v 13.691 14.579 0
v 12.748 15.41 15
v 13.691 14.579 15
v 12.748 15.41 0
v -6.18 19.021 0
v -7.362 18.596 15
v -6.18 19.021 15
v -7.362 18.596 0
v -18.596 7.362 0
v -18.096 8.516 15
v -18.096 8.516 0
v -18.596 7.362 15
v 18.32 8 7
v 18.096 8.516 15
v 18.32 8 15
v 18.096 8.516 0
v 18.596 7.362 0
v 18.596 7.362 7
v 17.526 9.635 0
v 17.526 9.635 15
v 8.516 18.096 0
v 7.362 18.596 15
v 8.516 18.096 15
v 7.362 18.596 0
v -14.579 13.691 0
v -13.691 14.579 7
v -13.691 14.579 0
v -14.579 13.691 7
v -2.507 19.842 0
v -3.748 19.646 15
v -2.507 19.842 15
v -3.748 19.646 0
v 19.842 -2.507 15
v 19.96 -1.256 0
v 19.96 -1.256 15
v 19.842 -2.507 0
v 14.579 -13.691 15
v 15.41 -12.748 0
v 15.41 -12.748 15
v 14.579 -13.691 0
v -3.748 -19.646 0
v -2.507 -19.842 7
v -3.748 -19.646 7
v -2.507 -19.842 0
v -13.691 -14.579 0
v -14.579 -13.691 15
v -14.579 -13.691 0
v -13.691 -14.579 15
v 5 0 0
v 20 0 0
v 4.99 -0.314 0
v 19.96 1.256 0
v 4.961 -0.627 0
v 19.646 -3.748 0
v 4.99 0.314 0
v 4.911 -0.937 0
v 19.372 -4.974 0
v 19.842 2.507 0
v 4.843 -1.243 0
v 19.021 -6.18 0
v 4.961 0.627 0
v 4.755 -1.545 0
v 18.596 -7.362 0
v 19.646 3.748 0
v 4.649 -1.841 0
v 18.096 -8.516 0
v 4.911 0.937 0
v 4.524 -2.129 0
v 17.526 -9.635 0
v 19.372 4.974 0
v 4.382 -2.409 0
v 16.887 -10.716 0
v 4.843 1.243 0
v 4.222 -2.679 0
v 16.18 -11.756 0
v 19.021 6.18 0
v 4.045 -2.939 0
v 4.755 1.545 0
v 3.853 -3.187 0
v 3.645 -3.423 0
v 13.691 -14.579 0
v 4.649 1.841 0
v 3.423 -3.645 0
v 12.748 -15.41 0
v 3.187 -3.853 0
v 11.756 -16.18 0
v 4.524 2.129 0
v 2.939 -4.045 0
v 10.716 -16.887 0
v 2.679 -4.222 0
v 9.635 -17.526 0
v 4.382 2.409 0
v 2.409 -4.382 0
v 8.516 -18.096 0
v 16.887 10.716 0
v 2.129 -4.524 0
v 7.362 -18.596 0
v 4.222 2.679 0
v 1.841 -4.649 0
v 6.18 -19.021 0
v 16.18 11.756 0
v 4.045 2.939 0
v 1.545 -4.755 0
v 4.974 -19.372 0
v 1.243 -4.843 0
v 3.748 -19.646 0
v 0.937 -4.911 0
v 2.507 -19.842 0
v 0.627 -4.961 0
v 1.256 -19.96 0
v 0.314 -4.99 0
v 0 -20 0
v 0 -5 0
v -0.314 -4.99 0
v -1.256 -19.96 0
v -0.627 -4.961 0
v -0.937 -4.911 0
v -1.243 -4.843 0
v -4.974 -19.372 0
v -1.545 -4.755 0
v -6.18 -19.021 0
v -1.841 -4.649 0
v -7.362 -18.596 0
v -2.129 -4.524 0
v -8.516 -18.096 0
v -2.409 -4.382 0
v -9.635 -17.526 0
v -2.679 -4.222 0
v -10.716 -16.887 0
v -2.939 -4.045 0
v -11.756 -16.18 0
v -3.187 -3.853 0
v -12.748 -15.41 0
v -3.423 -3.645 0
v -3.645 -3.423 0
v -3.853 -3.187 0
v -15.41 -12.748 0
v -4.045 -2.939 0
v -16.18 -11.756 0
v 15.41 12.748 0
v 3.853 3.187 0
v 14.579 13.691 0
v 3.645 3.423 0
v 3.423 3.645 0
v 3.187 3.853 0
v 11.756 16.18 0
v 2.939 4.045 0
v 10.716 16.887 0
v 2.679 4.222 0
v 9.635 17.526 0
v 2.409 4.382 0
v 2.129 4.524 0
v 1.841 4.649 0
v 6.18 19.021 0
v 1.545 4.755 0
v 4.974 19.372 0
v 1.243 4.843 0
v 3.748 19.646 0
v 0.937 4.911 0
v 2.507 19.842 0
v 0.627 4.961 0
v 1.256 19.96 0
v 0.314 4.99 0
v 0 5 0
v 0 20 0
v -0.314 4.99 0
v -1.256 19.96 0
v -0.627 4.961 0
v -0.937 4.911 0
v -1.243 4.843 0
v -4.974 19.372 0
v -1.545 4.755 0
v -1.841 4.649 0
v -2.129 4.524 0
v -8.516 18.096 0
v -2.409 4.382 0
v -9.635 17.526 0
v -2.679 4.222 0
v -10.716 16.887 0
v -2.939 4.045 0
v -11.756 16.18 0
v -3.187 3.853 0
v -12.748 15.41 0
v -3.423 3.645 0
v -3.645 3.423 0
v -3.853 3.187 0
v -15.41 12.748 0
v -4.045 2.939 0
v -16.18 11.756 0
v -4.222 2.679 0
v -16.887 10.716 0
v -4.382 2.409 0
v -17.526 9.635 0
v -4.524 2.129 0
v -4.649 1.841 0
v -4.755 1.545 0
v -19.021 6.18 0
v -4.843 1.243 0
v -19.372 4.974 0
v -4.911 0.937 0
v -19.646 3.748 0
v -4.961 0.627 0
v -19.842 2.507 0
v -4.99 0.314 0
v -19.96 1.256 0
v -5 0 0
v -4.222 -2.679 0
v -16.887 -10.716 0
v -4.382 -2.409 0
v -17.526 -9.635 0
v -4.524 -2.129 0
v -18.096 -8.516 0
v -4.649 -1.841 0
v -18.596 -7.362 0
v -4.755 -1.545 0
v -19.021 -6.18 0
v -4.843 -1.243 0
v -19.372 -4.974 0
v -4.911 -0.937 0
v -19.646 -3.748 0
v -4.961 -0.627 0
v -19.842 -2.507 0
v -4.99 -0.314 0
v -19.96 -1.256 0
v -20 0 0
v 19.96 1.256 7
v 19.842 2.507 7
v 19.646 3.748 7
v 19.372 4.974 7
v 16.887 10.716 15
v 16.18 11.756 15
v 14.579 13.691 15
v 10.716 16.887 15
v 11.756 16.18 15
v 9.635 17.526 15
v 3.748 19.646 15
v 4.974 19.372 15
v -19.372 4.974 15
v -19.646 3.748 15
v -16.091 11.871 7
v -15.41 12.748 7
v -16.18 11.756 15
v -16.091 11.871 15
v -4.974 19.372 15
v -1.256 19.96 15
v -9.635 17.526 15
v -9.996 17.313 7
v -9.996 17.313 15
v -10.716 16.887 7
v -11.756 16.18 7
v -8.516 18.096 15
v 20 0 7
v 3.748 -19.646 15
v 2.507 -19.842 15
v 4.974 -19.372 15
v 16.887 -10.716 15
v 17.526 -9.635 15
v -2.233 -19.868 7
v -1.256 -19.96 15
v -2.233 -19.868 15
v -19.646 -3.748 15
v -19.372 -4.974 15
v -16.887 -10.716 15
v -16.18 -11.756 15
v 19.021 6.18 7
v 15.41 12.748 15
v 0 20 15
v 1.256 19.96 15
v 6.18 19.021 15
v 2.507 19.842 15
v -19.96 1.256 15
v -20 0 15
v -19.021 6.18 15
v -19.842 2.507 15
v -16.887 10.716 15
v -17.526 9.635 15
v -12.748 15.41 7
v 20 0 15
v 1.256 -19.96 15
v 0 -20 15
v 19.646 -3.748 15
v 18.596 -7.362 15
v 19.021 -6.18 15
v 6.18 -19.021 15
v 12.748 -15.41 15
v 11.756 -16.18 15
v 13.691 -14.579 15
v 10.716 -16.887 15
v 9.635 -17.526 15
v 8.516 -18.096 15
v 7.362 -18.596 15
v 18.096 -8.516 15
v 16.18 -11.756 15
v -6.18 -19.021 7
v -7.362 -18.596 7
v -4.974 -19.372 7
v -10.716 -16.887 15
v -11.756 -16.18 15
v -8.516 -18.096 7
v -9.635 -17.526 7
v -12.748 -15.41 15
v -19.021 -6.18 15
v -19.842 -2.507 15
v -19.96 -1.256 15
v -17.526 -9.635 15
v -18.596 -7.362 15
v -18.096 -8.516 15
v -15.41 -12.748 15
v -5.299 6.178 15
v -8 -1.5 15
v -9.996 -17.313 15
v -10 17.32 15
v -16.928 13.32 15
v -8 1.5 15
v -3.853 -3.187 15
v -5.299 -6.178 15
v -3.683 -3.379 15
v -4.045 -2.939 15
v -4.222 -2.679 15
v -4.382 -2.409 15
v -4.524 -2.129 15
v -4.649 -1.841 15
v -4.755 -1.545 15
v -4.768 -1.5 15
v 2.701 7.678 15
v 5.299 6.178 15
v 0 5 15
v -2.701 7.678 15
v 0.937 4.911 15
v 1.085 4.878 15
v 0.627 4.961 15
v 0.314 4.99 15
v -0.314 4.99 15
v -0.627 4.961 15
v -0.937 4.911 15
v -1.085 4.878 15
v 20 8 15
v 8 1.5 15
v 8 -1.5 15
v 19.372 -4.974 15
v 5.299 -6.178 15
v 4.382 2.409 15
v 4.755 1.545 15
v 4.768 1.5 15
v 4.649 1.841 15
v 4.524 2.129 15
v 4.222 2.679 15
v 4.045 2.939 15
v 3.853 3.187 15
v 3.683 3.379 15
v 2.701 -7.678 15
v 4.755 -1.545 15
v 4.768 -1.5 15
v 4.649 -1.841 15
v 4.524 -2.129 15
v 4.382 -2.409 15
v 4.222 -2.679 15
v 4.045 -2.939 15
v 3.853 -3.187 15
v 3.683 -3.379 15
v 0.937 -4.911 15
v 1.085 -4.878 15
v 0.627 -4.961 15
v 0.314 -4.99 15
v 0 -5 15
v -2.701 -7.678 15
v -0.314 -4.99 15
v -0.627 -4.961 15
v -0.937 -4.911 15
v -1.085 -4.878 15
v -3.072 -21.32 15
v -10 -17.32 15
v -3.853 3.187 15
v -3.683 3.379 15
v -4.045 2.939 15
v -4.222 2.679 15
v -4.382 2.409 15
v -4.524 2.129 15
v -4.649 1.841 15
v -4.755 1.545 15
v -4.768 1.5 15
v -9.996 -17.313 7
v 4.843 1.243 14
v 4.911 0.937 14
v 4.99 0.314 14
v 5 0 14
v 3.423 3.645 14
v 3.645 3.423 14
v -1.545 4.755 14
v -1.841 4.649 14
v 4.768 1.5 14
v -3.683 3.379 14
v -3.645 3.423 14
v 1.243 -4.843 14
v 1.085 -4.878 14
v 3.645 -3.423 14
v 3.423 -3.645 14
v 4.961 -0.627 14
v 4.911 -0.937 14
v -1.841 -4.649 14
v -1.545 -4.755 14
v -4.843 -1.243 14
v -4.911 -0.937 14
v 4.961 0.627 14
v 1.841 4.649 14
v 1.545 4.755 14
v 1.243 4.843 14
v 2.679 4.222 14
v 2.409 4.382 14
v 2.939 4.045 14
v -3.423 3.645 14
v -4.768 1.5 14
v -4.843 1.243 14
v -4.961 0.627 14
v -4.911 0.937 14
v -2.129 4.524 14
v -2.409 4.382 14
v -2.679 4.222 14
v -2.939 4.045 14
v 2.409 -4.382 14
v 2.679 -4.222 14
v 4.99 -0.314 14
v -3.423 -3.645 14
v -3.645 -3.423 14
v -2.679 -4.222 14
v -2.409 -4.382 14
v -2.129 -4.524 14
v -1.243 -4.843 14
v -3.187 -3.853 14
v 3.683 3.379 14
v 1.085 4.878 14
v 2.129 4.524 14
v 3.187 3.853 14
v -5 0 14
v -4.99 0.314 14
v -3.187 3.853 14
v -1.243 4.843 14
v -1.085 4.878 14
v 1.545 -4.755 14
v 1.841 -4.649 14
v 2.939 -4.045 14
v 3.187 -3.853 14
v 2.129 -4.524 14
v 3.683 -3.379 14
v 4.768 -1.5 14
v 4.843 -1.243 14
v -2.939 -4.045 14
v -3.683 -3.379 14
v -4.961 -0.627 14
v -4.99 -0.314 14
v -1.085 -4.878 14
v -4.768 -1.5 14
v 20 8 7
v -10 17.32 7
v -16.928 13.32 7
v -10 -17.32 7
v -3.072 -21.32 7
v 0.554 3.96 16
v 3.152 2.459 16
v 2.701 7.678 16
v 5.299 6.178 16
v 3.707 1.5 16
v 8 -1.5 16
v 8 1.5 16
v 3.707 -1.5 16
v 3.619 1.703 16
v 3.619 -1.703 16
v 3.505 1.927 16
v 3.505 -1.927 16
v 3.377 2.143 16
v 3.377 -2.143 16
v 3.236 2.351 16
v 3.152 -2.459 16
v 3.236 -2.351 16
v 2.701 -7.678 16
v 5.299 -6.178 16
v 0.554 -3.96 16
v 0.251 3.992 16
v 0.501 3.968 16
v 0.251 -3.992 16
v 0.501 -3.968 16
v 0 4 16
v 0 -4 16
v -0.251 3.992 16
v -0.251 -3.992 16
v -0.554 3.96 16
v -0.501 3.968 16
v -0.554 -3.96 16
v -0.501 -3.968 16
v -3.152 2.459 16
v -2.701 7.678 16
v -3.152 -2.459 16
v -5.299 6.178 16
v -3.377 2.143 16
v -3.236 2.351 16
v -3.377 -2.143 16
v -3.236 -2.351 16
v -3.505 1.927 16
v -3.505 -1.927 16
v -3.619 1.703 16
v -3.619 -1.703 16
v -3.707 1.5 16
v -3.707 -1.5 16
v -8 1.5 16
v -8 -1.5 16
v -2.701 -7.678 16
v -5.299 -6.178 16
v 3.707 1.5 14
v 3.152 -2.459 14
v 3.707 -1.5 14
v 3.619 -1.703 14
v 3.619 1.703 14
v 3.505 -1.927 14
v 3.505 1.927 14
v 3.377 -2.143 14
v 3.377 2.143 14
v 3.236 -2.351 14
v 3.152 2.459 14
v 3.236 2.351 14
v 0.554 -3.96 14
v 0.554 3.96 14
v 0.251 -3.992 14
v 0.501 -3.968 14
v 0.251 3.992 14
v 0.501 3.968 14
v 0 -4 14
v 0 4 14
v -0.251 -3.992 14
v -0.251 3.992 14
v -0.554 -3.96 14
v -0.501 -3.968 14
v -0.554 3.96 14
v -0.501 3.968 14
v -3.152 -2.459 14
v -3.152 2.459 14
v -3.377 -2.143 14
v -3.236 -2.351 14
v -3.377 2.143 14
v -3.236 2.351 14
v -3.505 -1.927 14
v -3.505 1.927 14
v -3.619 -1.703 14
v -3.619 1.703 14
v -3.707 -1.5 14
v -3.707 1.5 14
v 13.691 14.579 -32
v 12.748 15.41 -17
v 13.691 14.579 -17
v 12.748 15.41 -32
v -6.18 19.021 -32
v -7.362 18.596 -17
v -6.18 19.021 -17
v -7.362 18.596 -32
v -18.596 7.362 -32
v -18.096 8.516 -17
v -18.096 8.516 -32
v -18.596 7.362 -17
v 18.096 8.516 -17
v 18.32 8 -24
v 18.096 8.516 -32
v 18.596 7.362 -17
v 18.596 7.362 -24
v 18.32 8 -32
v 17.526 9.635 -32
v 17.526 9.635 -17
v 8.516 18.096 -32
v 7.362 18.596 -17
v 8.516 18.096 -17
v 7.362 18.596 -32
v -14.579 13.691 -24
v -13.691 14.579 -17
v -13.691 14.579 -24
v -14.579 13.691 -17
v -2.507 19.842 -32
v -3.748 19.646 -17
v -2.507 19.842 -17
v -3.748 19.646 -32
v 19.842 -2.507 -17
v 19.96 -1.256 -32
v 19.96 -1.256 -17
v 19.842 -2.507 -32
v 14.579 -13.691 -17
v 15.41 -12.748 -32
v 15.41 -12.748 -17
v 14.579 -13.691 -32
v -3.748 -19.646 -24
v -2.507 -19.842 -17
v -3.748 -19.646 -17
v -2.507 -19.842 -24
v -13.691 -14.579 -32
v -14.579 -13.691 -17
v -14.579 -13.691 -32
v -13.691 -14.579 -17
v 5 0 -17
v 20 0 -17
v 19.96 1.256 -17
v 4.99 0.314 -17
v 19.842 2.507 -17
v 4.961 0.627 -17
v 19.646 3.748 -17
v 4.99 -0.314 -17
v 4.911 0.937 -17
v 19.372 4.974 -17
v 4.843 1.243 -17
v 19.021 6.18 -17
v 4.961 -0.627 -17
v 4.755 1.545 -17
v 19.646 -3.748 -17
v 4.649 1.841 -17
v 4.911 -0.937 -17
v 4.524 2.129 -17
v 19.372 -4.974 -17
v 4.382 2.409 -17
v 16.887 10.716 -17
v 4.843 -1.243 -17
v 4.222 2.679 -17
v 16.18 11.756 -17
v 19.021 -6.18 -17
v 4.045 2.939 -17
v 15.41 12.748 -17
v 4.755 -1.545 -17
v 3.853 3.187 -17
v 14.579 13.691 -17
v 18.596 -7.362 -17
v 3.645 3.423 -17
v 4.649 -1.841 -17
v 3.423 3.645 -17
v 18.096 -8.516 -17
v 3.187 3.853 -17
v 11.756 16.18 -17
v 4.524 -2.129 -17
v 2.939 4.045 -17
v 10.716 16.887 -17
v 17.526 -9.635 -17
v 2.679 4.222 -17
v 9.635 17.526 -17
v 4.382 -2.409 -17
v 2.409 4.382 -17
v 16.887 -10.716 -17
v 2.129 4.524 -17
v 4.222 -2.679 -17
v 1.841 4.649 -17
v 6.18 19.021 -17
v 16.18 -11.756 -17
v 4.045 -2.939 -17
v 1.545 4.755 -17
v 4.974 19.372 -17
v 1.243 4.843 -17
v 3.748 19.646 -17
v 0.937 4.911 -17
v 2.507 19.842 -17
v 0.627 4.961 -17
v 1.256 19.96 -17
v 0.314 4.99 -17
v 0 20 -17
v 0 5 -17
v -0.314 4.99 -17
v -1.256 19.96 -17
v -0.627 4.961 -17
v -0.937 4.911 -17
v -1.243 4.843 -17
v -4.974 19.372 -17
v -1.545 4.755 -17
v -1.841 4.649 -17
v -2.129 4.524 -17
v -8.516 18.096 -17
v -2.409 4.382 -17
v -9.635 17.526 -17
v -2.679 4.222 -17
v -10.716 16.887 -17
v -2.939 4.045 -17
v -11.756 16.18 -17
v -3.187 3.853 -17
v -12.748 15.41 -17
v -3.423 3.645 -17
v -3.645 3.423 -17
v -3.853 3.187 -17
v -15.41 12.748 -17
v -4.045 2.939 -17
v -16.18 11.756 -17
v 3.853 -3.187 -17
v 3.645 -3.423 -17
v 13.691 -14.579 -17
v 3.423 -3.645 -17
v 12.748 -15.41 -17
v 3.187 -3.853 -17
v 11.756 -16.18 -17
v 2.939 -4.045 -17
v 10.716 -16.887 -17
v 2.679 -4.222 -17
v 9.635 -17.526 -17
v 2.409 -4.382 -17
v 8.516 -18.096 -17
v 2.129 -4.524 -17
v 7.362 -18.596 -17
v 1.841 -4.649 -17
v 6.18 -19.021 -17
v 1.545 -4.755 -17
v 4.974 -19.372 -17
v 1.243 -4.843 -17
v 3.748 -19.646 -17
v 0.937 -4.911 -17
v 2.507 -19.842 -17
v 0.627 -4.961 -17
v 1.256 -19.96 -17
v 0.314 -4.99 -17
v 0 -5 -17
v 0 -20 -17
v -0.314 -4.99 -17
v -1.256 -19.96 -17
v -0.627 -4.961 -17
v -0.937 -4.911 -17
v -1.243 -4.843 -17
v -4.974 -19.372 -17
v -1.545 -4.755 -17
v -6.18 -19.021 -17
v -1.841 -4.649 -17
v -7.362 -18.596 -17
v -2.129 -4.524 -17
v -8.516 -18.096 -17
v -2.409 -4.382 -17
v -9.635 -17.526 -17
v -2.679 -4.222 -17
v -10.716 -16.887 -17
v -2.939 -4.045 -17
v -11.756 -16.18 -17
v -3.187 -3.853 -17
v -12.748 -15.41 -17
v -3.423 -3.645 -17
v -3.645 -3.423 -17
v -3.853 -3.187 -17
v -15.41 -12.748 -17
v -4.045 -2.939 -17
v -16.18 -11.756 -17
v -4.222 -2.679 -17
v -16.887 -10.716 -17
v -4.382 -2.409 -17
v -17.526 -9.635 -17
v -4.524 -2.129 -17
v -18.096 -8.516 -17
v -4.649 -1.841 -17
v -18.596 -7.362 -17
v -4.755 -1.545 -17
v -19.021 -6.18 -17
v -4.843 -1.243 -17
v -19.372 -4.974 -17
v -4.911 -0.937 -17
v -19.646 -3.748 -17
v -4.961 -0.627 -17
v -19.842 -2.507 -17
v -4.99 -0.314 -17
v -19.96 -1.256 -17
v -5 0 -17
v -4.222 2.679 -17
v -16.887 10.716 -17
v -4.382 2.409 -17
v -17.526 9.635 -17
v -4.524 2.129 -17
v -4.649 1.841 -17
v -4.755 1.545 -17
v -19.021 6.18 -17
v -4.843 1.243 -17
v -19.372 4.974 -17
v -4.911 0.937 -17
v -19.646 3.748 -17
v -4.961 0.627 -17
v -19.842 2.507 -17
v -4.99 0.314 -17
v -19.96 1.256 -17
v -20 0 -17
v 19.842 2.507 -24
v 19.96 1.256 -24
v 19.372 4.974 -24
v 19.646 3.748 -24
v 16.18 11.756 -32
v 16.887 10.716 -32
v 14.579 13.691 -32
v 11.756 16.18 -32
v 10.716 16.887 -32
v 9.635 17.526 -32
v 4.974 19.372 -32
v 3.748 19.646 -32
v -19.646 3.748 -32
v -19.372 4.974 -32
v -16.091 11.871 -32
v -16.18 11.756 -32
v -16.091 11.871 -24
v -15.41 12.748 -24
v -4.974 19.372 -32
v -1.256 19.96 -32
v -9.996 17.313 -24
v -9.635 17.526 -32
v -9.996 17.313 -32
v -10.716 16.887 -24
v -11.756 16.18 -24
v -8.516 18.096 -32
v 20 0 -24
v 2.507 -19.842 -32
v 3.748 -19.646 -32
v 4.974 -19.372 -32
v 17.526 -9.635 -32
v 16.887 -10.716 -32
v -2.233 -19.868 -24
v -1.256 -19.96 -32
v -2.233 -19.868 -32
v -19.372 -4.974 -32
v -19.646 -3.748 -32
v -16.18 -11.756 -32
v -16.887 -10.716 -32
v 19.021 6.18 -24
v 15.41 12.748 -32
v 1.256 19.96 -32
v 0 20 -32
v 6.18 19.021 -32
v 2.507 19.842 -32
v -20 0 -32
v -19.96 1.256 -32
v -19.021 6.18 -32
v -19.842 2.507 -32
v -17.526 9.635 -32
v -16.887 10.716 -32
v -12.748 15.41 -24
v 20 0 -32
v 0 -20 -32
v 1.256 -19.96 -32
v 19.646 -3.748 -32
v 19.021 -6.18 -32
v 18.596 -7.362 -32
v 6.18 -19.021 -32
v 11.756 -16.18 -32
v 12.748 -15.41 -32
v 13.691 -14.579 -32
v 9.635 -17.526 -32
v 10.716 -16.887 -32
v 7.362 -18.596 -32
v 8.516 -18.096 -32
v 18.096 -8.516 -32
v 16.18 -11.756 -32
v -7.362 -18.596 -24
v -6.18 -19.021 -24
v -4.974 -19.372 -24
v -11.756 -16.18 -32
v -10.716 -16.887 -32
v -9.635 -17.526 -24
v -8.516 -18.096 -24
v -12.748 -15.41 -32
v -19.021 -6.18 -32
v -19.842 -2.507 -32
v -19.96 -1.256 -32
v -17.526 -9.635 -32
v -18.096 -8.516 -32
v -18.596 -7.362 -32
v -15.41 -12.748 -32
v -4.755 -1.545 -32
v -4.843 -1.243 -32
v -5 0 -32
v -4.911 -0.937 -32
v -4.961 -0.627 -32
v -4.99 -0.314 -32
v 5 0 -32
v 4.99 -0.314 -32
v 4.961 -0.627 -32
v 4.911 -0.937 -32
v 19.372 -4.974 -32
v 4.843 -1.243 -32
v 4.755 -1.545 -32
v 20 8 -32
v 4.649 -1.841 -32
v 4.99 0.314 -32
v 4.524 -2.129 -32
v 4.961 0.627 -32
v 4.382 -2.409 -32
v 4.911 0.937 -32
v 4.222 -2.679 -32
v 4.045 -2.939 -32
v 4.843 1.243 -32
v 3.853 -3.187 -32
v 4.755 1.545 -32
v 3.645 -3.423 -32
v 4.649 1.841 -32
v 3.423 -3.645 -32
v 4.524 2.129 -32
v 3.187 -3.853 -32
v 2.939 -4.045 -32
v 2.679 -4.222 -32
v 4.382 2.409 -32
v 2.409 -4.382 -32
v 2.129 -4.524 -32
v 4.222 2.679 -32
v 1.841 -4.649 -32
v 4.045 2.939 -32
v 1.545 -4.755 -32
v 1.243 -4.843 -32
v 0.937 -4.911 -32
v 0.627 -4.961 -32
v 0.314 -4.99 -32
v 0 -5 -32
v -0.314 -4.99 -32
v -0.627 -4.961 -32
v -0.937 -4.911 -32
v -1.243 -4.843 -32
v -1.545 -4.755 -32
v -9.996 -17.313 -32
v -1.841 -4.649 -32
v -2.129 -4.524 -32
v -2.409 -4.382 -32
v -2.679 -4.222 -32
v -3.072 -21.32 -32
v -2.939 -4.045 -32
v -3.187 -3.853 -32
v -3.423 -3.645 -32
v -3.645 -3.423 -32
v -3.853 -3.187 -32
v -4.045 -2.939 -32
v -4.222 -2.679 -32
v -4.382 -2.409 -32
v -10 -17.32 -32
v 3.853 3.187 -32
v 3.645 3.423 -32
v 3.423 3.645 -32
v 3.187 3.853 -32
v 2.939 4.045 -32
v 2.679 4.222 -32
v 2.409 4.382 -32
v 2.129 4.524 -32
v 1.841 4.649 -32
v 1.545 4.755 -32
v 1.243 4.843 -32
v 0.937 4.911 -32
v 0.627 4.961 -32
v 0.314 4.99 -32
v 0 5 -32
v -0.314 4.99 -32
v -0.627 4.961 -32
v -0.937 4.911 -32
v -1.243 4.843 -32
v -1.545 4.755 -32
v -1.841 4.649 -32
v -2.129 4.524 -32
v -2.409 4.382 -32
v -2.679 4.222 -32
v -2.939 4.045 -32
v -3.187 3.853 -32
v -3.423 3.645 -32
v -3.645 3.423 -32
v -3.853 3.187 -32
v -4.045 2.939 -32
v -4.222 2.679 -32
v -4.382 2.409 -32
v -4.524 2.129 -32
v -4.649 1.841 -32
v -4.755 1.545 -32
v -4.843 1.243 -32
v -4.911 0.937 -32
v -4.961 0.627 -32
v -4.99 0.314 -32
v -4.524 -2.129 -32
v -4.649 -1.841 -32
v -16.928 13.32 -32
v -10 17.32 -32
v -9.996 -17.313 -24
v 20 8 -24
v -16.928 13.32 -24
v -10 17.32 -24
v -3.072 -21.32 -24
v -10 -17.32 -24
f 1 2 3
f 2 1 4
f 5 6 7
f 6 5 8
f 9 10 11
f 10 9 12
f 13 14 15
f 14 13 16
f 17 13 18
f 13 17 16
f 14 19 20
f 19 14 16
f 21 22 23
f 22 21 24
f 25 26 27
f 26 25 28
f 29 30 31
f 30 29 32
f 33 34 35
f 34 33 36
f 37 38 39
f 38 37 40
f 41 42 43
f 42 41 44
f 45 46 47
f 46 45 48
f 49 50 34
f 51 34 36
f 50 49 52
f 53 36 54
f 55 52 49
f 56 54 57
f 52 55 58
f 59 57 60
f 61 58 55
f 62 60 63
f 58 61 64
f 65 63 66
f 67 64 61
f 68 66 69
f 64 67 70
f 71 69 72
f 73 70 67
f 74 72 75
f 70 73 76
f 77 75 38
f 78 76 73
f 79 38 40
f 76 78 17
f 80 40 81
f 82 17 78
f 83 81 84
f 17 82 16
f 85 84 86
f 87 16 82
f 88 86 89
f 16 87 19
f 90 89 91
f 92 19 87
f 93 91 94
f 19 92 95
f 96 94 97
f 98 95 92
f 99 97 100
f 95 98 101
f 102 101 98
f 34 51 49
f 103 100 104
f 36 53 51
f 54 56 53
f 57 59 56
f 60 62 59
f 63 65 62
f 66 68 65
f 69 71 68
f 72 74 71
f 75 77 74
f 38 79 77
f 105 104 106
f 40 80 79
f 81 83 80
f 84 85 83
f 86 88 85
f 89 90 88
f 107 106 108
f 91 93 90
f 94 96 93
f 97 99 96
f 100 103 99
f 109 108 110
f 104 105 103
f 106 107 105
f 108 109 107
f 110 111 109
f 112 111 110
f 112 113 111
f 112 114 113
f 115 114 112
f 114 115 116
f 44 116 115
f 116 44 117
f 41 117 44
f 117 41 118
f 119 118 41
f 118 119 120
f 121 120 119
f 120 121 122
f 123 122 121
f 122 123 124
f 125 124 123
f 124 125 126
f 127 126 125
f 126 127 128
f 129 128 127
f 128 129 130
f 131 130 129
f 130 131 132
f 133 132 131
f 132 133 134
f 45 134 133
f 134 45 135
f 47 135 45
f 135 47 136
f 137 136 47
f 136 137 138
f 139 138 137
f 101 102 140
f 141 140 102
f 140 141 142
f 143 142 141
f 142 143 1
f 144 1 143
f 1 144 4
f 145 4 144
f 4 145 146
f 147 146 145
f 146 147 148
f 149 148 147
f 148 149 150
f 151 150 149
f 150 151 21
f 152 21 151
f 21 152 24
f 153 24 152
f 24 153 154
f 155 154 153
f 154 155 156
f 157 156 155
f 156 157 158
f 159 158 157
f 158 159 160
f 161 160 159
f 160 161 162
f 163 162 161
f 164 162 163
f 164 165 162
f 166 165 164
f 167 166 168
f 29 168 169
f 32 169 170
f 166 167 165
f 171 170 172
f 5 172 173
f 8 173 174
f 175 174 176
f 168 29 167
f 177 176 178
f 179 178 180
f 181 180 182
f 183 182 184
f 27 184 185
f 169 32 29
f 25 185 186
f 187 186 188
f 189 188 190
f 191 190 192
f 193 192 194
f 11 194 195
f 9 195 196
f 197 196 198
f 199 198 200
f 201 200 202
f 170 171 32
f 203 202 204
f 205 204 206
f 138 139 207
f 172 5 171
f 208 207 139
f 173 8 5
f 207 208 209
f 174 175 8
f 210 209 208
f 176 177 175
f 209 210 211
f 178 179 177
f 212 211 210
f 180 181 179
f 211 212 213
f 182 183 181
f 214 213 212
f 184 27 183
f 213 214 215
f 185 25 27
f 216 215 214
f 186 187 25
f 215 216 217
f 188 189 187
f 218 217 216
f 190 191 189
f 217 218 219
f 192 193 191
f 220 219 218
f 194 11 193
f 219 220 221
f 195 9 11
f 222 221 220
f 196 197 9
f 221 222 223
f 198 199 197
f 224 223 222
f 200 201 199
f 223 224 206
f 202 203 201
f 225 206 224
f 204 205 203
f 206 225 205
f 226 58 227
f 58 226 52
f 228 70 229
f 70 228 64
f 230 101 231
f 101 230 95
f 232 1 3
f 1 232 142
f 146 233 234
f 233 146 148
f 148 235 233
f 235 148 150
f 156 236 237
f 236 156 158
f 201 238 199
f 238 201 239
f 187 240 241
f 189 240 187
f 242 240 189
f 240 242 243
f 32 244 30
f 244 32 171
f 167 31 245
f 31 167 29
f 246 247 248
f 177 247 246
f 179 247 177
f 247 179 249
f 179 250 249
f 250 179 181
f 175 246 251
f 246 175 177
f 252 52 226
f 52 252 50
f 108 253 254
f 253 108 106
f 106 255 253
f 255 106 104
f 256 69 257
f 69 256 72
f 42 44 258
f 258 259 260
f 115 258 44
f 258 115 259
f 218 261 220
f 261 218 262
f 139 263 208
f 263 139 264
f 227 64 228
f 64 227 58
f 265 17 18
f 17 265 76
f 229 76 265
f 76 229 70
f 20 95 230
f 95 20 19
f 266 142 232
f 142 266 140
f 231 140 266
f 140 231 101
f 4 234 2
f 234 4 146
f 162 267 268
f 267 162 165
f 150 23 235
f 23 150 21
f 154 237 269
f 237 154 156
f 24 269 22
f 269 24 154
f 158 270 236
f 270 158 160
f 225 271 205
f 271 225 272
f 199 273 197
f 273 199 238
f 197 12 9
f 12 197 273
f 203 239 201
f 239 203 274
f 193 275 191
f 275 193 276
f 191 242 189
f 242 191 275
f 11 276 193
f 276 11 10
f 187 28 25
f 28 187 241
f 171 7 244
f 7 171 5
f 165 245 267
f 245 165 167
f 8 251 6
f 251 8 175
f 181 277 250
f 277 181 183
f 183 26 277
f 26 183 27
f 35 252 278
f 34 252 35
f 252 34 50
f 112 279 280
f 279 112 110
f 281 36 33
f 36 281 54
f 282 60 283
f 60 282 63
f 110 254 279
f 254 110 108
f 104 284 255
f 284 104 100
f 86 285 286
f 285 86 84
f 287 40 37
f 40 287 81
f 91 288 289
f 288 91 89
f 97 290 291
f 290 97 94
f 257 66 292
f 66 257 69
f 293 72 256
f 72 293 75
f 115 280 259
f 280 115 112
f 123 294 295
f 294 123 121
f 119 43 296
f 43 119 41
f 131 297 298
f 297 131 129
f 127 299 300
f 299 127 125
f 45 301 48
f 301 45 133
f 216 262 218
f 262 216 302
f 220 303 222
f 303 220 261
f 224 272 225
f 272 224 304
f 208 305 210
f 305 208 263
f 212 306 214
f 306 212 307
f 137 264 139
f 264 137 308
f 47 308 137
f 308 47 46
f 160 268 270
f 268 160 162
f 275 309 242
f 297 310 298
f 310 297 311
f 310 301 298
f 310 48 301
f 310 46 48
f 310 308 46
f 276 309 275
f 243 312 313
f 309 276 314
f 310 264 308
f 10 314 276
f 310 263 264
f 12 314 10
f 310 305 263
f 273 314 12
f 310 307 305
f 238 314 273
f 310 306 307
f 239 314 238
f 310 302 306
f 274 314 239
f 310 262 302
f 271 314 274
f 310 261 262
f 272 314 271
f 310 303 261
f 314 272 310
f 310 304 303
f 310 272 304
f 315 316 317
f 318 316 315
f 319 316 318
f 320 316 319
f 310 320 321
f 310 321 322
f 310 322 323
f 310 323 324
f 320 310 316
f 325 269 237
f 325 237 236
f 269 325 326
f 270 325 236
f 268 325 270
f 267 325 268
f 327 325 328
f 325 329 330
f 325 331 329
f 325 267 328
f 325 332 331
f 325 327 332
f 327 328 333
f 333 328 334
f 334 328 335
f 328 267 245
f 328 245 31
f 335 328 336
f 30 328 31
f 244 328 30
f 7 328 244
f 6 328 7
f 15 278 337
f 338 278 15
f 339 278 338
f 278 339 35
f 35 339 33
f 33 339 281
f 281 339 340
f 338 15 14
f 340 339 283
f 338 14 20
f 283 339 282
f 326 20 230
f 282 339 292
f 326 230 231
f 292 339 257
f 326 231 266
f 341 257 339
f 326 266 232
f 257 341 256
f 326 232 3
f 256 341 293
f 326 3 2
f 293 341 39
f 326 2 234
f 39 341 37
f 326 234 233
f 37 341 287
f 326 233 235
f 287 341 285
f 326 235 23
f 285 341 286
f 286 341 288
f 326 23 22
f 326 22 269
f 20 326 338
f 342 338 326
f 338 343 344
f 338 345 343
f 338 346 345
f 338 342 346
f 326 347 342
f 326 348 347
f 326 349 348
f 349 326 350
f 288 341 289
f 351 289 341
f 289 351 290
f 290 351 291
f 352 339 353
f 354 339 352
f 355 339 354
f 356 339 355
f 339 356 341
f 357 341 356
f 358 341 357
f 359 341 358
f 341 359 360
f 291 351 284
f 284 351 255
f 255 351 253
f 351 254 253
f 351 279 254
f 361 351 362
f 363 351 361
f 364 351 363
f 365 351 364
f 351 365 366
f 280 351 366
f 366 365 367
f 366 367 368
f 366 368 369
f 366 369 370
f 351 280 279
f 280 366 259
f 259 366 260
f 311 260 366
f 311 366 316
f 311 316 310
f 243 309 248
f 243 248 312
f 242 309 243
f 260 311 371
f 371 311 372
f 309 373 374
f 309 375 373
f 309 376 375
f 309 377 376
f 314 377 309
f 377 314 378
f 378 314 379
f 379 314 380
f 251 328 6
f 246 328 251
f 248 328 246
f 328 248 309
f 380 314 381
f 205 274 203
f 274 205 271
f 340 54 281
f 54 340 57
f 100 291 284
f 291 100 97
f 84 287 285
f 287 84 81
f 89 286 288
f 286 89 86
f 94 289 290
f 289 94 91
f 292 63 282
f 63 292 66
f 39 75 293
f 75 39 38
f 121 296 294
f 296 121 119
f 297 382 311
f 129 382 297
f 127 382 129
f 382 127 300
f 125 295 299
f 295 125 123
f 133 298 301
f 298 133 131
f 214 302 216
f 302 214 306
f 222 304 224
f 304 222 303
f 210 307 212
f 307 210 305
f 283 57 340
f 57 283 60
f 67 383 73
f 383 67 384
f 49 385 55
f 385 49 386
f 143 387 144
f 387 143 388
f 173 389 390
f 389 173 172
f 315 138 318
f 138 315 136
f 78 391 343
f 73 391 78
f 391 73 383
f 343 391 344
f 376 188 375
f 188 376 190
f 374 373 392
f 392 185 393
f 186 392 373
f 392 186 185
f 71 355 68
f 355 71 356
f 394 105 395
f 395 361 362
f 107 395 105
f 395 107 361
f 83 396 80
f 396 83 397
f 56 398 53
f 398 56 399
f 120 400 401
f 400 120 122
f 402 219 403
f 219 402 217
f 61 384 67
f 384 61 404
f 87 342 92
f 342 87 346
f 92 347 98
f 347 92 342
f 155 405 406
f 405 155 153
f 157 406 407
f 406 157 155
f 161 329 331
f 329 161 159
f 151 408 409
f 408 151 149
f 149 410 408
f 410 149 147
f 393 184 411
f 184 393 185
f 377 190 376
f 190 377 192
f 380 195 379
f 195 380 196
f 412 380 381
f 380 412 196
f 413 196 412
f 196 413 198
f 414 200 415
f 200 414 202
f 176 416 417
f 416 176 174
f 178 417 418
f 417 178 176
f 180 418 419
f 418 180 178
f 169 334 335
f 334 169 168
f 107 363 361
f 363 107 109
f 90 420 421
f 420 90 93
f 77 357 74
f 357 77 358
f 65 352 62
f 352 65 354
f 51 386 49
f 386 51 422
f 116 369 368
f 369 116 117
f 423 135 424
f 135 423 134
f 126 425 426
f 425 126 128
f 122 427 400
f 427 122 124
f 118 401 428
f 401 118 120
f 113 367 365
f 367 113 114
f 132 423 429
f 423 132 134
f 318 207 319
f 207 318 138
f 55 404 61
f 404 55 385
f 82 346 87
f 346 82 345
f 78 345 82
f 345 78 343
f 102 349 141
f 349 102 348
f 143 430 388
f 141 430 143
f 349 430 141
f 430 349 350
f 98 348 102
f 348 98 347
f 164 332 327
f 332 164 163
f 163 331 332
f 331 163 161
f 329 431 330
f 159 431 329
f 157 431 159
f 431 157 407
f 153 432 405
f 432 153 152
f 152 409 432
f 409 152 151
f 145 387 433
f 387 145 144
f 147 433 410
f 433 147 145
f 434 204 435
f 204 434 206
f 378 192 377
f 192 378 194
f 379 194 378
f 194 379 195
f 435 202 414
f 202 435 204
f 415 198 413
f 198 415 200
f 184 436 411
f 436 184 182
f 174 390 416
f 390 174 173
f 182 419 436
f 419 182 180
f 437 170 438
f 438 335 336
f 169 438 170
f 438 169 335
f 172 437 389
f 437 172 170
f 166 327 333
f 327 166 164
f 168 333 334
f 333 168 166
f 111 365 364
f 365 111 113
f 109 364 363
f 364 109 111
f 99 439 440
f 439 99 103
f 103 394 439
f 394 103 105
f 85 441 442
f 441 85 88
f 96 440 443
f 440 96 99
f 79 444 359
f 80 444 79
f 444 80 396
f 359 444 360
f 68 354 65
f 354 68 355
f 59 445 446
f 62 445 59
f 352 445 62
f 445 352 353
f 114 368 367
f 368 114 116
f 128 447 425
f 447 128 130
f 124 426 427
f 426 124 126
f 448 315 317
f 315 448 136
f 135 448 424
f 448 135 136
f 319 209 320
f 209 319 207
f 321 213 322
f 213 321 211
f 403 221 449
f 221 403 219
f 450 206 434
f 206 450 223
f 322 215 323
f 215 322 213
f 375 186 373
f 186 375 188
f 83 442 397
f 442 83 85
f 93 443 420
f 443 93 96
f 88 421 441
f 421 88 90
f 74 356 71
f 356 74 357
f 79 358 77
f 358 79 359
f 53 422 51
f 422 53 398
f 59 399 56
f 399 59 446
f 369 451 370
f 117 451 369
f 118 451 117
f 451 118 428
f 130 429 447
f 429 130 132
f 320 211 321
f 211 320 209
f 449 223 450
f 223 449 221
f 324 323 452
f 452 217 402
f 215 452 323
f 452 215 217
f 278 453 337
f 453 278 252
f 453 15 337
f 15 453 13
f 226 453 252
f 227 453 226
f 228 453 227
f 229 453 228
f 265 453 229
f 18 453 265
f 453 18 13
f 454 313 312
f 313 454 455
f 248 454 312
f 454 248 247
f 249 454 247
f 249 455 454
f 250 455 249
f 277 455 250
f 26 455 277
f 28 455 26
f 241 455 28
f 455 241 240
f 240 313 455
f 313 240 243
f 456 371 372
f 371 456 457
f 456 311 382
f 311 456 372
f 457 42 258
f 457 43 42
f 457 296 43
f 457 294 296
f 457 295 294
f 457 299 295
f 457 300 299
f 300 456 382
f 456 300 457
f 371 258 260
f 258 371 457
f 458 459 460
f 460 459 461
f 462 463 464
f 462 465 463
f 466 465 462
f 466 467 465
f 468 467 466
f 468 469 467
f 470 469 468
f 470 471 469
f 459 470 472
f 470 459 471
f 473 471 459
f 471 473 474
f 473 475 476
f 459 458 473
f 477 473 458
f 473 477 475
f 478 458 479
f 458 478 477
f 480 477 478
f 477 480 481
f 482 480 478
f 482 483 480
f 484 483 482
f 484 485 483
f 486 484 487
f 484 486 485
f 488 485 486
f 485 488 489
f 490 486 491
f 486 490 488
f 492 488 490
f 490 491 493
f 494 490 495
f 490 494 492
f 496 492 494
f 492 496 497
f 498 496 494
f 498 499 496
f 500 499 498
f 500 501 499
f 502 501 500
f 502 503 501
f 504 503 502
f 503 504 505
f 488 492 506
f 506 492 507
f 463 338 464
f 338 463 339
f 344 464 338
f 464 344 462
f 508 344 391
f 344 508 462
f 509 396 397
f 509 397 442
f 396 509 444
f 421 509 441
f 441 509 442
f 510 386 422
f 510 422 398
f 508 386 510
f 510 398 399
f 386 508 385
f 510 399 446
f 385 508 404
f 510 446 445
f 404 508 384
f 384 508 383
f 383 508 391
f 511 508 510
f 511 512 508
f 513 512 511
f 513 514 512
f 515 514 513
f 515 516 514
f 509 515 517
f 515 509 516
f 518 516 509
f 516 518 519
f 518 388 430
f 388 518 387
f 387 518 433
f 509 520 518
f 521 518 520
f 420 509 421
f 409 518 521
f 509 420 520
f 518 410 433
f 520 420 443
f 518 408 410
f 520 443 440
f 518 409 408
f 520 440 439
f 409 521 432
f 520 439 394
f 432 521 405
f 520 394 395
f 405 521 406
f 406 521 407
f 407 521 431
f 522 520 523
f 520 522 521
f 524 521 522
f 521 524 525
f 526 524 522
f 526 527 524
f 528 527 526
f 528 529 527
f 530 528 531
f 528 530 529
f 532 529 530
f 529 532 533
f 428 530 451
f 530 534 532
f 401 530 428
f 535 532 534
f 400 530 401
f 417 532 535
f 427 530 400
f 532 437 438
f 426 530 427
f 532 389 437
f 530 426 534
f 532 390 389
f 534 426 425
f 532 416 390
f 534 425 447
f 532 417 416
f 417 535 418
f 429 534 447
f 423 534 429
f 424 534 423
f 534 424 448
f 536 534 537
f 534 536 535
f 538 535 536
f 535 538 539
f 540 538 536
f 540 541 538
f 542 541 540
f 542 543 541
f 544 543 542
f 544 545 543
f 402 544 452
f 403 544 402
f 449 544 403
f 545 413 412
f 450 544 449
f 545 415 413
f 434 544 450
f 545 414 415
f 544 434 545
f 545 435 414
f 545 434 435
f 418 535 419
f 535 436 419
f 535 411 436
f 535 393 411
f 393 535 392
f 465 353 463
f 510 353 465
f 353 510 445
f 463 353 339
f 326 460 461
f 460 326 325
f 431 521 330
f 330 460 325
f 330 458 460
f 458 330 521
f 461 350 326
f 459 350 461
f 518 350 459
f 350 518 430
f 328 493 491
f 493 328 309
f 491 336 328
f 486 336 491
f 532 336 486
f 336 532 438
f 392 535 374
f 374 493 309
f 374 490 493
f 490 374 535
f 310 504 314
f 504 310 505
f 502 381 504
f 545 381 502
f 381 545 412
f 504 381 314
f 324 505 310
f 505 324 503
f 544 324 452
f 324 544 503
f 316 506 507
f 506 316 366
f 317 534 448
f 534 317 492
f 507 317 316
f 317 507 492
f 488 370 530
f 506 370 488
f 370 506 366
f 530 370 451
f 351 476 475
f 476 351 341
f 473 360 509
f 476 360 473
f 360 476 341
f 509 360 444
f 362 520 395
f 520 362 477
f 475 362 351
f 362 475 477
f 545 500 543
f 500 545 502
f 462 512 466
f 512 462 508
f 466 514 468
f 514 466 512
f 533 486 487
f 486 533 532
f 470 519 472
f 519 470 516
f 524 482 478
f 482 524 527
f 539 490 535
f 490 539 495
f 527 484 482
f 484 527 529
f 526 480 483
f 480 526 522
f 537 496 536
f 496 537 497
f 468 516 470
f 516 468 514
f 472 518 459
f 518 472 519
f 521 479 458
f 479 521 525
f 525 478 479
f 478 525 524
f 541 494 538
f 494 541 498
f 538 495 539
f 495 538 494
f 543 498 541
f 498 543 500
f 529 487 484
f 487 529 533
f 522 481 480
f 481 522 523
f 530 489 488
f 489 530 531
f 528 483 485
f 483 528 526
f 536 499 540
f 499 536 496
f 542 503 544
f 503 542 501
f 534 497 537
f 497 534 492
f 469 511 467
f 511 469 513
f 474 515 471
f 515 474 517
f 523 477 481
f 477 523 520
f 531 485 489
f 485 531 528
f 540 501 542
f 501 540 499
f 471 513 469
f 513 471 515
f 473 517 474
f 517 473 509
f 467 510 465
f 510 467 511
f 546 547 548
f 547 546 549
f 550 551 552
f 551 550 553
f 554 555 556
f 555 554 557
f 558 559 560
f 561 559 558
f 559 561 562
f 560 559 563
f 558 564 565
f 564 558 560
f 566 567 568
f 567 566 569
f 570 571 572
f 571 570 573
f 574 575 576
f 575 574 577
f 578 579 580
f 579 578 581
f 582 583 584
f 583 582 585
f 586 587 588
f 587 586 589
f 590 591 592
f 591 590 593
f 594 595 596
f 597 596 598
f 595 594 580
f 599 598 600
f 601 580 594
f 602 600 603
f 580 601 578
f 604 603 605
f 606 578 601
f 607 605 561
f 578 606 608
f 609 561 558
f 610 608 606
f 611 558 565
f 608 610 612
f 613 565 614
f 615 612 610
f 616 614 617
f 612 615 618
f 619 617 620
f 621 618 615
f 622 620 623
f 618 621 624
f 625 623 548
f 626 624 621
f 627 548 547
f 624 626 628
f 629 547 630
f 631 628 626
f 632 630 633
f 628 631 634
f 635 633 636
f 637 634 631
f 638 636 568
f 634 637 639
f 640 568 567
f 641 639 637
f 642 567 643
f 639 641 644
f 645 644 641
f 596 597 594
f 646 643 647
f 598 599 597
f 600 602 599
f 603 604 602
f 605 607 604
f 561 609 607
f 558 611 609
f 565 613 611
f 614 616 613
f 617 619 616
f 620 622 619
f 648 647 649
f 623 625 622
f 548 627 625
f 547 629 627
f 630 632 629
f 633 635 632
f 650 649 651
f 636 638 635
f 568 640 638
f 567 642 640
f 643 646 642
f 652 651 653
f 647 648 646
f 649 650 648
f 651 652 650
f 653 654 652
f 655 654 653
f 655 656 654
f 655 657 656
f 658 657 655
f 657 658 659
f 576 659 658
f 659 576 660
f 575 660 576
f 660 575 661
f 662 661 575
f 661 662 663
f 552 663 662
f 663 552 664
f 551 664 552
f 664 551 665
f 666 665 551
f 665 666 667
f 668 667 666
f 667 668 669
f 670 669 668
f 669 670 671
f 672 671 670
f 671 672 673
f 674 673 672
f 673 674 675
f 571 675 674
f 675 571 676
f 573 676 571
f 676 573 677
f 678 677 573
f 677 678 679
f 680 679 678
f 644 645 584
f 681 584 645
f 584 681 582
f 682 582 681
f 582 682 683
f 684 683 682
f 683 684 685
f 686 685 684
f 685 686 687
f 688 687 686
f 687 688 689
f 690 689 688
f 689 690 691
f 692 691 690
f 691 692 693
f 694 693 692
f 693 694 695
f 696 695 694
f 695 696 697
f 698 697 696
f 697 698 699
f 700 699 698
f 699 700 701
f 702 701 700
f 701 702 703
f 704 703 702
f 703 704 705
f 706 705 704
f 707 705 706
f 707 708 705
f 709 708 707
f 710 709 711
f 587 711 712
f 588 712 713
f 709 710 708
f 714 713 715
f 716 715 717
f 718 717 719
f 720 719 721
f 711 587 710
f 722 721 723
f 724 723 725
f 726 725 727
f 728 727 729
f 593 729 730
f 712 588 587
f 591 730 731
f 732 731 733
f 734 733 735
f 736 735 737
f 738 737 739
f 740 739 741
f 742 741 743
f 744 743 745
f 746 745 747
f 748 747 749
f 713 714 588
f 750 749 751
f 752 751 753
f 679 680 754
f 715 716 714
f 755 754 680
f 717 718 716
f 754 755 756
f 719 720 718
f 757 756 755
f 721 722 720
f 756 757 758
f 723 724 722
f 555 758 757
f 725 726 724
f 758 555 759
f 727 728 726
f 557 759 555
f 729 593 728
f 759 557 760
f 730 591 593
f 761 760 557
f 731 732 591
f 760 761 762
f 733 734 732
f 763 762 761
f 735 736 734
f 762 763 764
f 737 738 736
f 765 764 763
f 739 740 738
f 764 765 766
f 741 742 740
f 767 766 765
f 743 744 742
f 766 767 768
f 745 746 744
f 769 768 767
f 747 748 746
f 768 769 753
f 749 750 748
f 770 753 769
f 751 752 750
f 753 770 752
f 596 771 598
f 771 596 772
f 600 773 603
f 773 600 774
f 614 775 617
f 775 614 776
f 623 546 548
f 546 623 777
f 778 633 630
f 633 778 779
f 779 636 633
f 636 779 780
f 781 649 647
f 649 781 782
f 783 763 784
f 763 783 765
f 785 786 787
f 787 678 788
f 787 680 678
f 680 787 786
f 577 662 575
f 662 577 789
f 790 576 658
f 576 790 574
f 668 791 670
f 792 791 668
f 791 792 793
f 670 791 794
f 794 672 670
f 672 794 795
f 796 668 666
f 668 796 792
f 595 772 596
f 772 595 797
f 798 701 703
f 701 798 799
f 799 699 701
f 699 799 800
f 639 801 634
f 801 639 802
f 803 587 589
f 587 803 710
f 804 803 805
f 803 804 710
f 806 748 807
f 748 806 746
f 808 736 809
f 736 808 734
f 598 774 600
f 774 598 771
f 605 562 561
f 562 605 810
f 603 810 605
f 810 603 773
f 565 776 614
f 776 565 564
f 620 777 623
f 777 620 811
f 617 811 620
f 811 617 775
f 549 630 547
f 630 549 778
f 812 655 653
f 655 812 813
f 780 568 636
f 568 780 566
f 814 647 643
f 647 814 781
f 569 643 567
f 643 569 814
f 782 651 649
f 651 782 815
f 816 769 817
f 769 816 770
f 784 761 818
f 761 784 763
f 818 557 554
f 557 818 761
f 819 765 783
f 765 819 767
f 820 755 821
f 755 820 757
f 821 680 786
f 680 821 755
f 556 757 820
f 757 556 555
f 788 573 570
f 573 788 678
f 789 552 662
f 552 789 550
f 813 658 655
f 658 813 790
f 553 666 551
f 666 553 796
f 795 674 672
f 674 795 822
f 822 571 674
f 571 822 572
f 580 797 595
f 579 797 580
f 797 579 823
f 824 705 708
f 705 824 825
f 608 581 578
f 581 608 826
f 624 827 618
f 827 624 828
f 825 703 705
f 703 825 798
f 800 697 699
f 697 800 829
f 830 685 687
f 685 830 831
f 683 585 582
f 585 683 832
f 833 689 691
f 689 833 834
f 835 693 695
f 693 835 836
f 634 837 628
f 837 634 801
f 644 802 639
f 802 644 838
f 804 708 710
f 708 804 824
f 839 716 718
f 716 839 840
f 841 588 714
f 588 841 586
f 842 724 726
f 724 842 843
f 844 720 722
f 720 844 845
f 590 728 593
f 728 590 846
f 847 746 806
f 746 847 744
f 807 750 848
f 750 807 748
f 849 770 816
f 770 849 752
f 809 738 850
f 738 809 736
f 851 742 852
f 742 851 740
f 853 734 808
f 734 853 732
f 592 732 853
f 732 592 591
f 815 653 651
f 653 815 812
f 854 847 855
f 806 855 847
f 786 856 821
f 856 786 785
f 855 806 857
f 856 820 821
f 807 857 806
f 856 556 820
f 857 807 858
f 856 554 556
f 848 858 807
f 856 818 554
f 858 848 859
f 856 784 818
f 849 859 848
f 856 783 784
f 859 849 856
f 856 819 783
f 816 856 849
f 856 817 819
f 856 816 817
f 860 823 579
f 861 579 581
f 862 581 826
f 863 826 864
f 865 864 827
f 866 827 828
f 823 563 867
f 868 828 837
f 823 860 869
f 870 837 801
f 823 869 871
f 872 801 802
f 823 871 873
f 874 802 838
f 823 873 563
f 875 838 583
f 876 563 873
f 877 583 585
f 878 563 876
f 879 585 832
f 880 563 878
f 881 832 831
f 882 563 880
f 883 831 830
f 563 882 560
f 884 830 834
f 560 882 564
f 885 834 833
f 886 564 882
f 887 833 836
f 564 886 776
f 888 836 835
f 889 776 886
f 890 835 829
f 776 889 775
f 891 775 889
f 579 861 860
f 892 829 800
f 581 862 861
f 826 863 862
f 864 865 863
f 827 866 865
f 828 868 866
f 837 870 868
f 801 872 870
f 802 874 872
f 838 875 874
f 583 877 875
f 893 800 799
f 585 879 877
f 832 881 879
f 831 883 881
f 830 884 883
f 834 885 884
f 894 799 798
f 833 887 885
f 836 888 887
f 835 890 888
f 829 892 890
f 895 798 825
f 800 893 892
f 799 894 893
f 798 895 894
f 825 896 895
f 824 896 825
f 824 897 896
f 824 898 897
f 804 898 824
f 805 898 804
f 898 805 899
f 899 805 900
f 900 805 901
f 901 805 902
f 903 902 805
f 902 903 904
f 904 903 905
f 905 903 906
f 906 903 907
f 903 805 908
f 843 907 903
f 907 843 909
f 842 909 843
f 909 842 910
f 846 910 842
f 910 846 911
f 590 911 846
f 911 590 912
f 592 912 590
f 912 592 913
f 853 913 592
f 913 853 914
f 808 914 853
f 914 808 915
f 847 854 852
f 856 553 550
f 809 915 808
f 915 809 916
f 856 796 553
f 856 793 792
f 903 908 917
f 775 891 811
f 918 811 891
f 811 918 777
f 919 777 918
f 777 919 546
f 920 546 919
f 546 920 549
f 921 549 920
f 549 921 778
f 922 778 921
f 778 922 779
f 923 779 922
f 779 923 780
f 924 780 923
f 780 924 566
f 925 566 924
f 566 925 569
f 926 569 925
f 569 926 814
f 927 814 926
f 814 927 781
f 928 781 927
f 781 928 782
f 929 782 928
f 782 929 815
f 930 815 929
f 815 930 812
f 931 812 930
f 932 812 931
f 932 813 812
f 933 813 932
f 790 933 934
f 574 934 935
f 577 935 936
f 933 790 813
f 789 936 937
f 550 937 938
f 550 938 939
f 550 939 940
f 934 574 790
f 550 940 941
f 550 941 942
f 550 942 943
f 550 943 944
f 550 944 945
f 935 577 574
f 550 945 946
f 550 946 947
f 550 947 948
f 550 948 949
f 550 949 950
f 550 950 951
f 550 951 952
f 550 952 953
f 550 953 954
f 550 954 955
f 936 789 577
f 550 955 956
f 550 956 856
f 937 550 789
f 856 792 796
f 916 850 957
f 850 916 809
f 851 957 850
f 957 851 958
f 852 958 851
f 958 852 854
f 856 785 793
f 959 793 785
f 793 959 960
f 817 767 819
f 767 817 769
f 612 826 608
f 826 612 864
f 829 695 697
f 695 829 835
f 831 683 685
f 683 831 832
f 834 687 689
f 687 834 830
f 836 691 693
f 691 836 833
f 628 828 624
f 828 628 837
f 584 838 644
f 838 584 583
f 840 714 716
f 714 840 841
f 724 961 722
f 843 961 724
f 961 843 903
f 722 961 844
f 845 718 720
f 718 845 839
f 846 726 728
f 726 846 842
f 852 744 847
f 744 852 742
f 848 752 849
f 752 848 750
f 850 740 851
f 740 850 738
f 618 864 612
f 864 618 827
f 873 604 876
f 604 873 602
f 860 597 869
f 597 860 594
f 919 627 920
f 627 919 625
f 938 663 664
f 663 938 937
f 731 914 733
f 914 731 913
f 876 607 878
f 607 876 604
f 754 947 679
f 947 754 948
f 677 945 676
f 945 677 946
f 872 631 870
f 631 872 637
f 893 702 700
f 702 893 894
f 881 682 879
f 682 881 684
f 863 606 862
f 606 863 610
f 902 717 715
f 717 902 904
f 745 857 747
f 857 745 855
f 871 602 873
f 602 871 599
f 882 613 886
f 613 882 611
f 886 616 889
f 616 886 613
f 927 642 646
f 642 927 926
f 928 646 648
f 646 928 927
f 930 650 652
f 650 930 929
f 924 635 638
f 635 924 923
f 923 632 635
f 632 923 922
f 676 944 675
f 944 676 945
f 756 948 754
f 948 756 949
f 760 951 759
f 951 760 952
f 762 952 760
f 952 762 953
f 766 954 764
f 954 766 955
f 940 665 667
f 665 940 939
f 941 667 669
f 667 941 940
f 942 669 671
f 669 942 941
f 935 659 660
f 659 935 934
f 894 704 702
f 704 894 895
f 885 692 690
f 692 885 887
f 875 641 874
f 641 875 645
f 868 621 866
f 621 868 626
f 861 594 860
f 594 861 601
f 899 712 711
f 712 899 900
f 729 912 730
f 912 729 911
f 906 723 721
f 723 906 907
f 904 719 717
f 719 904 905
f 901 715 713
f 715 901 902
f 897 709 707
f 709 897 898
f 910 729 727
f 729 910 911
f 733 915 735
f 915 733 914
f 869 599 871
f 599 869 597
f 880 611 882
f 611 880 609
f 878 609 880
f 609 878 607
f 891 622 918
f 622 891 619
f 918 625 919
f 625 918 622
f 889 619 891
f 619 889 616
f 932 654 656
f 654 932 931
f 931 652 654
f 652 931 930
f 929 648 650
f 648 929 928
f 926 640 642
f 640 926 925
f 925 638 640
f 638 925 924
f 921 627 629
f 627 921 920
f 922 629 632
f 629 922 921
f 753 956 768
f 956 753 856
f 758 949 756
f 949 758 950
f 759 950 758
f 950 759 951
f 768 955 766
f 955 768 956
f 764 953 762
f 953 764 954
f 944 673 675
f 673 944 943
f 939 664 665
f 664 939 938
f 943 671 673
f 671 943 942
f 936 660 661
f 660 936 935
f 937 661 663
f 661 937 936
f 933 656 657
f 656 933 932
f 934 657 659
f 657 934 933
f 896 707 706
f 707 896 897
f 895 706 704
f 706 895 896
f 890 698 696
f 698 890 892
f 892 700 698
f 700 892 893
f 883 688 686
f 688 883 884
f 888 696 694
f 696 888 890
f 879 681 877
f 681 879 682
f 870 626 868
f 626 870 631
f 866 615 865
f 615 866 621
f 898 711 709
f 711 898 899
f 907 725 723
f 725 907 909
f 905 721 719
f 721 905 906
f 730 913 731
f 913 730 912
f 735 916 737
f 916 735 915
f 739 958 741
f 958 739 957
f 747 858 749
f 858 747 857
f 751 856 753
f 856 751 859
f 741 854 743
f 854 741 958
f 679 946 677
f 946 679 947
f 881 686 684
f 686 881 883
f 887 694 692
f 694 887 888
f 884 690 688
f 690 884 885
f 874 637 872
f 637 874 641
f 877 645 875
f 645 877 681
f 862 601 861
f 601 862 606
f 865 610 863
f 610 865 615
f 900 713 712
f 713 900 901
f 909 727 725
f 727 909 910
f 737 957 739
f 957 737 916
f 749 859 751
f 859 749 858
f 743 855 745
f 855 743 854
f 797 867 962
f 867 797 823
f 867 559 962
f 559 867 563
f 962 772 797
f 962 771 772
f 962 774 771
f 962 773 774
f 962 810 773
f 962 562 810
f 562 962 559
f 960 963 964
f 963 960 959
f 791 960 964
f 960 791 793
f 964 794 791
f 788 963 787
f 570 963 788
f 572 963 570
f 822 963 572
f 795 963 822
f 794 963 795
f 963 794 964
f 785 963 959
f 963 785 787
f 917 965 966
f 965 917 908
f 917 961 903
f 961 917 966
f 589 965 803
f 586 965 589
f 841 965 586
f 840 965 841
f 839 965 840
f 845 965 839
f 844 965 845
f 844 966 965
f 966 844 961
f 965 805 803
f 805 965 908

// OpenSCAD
$fn = 100;

// Parameters
hub_radius = 20;
hub_length = 15;
jaw_width = 8;
jaw_depth = 5;
insert_radius = 3;
spider_arm_length = 6;
spider_arm_thickness = 3;
spider_radius = 5;

// Module: Left Hub
module left_hub() {
    difference() {
        cylinder(h = hub_length, r = hub_radius);
        // Center hole
        cylinder(h = hub_length, r = 5);
    }
    // Jaws
    for (i = [0:120:360]) {
        rotate([0, 0, i])
        translate([hub_radius - jaw_depth, 0, hub_length - jaw_width])
        cube([jaw_depth, jaw_width, jaw_width], center = false);
    }
}

// Module: Right Hub
module right_hub() {
    translate([0, 0, -(hub_length + 2)])
    mirror([0, 0, 1])
    left_hub();
}

// Module: Jaw Inserts
module jaw_inserts() {
    for (i = [0:120:360]) {
        rotate([0, 0, i])
        translate([hub_radius - jaw_depth - 1.5, 0, hub_length - jaw_width/2])
        cylinder(h = 2, r = insert_radius, center = true);
    }
}

// Module: Elastomeric Spider
module elastomeric_spider() {
    for (i = [0:60:360]) {
        rotate([0, 0, i])
        translate([spider_radius, 0, hub_length])
        cube([spider_arm_length, spider_arm_thickness, 2], center = true);
    }
    // Center hub
    translate([0, 0, hub_length])
    cylinder(h = 2, r = 4, center = true);
}

// Assembly
module coupling() {
    left_hub();
    jaw_inserts();
    elastomeric_spider();
    right_hub();
}

coupling();
